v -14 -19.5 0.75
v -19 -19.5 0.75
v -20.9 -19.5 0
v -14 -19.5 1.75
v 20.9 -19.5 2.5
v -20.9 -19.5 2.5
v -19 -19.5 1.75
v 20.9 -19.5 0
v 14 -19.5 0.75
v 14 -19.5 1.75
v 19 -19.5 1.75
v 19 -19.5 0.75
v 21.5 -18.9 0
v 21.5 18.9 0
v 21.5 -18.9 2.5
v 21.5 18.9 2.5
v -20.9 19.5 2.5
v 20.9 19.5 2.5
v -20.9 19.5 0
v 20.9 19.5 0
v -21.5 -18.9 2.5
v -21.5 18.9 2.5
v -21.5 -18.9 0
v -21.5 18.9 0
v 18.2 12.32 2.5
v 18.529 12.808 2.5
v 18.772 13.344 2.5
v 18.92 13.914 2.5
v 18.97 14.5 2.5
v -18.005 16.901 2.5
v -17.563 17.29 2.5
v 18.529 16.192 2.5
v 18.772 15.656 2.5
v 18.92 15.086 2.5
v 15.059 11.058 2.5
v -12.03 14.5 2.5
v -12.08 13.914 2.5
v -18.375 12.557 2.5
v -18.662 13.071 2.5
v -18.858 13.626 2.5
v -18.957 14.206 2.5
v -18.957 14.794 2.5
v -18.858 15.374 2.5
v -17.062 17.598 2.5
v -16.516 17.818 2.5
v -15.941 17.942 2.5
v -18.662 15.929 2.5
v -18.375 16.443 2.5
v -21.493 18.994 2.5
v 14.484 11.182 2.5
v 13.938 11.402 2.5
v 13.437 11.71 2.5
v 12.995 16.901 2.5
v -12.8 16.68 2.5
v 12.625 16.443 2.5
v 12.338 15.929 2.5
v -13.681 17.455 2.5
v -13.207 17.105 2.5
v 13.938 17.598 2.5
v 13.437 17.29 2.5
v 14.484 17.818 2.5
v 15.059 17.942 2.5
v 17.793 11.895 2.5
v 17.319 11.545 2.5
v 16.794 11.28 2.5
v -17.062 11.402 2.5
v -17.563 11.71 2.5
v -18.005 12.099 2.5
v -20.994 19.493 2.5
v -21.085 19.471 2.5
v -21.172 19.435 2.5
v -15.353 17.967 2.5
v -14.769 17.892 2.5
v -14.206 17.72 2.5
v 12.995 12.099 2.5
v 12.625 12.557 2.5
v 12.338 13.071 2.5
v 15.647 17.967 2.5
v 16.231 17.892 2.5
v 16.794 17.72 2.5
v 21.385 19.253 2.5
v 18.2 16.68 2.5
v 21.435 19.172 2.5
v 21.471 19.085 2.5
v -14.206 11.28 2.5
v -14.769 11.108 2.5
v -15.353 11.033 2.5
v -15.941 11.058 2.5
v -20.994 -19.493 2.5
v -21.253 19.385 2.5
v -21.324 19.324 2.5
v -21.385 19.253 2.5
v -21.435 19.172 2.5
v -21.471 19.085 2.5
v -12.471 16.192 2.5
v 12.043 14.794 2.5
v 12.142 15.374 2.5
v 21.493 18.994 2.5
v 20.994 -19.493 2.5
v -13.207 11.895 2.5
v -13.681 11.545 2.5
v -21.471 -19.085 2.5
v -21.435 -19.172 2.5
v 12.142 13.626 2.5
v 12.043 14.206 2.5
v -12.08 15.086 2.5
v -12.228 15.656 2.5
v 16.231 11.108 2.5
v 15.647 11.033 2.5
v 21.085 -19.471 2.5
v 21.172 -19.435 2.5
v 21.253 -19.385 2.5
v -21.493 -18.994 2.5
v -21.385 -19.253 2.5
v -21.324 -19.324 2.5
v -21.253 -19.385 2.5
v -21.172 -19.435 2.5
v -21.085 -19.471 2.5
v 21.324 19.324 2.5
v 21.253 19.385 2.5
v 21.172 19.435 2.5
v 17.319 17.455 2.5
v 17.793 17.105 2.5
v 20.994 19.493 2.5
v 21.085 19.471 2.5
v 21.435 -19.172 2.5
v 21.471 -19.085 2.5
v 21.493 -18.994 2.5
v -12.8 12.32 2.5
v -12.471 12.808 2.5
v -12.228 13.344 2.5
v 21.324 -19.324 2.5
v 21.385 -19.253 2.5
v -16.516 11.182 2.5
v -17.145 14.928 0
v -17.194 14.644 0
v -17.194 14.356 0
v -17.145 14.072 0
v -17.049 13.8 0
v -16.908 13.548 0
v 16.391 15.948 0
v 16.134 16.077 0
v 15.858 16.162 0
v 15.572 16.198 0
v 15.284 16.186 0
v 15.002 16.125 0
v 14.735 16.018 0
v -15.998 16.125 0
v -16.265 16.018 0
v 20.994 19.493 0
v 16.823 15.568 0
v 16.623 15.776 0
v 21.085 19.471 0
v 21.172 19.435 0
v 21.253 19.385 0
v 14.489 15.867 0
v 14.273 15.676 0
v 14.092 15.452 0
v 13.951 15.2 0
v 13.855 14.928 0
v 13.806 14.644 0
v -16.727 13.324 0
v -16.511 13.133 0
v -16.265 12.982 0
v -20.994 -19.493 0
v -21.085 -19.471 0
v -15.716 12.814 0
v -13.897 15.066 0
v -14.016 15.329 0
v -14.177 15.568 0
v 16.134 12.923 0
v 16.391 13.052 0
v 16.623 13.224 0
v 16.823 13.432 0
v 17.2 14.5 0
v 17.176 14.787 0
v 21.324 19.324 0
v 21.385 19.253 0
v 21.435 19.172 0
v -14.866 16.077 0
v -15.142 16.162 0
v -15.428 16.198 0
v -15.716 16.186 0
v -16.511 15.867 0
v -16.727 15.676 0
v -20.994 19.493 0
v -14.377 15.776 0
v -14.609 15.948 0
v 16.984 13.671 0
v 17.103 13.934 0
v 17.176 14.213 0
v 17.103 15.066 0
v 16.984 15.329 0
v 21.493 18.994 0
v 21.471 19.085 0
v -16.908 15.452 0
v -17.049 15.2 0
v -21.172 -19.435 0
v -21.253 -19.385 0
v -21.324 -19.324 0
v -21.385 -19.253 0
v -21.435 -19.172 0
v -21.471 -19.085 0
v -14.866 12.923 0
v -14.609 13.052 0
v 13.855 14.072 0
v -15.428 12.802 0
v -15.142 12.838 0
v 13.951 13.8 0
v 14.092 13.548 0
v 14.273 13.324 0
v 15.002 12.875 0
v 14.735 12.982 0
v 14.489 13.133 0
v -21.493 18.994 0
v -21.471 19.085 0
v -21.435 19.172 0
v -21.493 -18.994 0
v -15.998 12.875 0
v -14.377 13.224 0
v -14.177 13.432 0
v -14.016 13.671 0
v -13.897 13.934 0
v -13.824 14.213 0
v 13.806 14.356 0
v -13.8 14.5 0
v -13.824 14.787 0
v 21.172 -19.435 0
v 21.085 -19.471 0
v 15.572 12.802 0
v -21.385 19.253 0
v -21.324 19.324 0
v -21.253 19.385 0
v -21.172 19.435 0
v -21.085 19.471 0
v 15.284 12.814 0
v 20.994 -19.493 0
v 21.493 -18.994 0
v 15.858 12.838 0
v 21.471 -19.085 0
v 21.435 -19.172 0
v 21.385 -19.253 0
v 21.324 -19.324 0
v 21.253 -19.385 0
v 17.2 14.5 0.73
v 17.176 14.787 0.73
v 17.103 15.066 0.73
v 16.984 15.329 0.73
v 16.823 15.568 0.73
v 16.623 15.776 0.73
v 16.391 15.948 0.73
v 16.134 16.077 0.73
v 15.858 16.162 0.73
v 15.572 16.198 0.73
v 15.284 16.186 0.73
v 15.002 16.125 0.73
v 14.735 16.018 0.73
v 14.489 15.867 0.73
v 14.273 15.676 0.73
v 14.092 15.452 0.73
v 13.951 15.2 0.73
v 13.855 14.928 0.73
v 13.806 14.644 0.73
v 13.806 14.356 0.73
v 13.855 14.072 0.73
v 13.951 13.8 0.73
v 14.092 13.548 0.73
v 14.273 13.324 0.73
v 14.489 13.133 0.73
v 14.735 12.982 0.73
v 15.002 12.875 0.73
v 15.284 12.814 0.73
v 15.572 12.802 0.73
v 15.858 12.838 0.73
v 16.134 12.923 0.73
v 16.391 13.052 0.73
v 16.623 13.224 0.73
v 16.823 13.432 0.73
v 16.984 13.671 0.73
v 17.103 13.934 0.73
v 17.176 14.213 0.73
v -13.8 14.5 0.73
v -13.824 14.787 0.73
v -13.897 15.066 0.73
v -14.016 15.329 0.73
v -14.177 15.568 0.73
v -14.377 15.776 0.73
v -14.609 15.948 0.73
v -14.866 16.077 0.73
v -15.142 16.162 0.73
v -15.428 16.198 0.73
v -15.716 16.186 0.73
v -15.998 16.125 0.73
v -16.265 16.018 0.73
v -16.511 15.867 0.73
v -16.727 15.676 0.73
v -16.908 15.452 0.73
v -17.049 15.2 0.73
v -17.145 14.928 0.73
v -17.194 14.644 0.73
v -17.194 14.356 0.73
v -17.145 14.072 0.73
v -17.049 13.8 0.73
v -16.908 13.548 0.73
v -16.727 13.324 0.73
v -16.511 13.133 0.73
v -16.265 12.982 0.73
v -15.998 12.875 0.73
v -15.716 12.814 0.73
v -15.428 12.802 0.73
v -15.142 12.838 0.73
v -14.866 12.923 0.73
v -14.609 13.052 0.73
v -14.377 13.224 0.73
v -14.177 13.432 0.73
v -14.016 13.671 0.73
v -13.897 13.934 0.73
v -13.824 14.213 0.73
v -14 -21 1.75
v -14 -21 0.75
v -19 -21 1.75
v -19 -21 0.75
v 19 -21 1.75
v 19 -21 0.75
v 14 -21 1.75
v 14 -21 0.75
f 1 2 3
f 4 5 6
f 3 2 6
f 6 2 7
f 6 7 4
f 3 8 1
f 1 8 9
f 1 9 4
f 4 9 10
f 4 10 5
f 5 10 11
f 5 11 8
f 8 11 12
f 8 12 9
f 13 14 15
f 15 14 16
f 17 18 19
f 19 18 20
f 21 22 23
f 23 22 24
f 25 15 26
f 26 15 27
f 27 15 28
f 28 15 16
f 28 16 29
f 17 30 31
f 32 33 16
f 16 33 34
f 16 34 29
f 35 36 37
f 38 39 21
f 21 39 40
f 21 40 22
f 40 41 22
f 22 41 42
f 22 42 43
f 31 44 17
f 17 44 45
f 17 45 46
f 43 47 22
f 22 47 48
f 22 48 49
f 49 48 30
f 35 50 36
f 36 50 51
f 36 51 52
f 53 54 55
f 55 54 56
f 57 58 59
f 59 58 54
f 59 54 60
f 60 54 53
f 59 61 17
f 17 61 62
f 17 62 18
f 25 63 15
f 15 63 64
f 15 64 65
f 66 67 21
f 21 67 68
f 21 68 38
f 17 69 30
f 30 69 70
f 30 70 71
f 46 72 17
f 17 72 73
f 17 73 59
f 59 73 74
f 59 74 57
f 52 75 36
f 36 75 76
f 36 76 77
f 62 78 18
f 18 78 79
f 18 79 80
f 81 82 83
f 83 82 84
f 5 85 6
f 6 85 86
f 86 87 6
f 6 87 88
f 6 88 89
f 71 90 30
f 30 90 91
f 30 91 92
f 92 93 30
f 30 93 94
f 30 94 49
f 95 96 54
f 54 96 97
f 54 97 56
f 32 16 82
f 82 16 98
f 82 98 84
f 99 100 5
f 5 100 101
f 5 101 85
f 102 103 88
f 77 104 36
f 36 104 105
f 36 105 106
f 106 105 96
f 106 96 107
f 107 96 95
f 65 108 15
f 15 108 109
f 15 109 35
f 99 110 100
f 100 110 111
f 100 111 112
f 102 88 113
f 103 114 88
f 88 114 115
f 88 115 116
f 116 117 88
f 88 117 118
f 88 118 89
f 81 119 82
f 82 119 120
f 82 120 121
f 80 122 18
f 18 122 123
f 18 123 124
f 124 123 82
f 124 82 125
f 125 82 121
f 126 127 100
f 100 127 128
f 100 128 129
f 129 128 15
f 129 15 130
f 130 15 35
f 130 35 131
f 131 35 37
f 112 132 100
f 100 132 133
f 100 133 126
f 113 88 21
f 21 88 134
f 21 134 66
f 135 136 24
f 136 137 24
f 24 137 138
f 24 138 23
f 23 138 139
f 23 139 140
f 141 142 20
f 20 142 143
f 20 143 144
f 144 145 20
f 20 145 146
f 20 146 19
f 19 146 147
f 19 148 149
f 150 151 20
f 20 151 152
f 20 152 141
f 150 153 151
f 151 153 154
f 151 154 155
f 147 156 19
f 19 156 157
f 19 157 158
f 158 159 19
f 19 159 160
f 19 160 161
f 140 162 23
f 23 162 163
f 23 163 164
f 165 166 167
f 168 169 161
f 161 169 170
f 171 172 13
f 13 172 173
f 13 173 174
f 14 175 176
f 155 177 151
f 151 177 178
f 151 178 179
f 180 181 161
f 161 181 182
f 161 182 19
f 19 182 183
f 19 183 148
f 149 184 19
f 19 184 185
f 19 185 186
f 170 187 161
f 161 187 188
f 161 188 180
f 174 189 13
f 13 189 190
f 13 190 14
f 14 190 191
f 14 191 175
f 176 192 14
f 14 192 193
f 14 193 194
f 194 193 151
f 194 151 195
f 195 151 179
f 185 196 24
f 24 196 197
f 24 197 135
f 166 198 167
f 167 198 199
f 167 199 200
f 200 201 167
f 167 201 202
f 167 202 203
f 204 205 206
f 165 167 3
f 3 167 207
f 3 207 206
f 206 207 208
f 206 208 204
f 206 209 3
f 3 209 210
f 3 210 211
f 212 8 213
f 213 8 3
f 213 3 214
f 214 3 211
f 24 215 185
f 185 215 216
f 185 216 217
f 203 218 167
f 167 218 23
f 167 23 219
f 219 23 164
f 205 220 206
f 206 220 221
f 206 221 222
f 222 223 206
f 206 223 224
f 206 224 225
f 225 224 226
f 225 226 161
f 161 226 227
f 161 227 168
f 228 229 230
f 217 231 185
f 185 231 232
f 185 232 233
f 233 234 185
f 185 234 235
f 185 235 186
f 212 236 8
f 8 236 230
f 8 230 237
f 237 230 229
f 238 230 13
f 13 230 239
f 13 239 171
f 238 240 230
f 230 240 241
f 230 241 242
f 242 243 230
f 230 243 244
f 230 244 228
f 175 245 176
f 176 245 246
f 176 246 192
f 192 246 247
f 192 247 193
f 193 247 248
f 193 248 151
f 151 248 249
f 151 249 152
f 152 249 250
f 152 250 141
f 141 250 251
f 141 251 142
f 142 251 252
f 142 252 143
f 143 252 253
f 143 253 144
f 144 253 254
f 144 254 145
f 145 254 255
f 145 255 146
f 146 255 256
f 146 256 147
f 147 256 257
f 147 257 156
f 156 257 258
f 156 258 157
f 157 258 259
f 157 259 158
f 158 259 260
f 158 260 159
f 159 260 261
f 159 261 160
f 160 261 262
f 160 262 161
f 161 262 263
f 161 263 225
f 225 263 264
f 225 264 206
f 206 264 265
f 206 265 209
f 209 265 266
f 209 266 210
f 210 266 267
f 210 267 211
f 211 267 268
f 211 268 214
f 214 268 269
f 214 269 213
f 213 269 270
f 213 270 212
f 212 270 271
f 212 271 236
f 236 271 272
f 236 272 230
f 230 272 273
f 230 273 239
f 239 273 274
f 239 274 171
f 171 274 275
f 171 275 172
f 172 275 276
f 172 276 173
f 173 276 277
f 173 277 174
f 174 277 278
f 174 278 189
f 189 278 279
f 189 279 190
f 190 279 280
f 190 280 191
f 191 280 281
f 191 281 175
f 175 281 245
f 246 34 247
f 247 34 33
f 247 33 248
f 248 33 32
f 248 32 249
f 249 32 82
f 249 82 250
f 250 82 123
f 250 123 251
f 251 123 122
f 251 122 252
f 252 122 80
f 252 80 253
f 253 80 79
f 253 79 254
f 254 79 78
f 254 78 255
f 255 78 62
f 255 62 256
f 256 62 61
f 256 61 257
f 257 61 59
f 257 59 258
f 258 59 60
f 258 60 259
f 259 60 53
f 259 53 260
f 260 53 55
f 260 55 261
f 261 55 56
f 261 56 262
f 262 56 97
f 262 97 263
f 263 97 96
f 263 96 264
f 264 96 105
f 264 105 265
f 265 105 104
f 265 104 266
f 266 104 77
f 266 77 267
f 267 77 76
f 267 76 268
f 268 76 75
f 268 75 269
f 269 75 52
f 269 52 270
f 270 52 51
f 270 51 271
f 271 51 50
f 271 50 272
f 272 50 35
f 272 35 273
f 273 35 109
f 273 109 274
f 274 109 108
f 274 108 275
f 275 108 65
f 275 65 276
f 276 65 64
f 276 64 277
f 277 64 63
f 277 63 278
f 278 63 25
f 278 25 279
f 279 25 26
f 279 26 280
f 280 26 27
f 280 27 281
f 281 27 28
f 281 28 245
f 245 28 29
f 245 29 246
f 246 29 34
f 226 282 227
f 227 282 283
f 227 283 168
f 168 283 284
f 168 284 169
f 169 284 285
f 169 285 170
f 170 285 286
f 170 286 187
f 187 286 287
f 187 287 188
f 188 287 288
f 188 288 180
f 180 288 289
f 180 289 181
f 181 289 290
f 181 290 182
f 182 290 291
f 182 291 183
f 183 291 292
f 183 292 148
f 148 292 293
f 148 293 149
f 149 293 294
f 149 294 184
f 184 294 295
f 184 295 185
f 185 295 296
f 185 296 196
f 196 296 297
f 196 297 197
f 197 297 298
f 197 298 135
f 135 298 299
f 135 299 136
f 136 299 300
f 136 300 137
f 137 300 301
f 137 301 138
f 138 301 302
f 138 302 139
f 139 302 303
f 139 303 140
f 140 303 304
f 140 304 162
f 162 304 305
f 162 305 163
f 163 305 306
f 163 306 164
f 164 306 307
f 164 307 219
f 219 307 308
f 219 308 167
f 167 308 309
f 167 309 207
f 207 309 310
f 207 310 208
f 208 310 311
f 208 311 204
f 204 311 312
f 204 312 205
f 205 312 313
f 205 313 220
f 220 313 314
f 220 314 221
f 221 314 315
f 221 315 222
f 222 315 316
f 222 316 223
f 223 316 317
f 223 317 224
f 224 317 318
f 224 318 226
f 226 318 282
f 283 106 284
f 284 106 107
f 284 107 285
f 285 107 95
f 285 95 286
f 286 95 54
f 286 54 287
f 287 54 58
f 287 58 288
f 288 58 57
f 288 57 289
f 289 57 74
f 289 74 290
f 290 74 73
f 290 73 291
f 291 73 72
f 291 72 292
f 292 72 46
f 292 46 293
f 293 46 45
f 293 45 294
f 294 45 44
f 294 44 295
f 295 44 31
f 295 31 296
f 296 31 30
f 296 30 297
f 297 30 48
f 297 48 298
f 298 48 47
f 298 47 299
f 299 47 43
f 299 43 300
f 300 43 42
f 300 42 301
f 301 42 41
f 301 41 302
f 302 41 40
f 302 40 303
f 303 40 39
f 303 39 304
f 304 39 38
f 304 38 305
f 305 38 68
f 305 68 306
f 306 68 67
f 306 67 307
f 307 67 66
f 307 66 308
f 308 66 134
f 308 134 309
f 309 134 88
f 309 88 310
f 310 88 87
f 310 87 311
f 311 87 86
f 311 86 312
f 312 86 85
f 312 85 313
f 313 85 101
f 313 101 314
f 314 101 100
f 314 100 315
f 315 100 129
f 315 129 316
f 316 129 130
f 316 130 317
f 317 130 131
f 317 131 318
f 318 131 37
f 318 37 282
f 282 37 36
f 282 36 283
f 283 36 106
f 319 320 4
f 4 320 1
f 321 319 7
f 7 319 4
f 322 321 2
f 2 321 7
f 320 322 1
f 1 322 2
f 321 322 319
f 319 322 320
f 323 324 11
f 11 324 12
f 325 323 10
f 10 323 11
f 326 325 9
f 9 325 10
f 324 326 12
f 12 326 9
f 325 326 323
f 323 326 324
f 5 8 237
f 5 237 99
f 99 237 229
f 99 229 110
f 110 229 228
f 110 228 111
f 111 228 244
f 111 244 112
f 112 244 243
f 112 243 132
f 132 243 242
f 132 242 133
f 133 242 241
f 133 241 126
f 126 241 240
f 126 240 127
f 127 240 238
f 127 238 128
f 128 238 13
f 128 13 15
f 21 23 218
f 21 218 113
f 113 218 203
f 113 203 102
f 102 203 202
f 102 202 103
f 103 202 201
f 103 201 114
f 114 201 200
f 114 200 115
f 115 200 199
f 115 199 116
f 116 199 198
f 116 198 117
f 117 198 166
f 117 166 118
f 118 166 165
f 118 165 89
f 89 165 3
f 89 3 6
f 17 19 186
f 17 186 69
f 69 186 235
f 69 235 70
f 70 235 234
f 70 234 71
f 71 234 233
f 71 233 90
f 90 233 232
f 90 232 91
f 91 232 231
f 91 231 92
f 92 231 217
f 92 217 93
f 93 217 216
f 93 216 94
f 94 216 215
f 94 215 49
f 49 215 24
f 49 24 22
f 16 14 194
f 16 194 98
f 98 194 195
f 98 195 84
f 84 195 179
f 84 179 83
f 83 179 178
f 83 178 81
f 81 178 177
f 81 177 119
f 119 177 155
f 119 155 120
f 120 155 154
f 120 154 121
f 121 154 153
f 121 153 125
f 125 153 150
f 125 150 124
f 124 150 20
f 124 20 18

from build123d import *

# Parameters (mm, degrees)
CROQUIS1_W                                           = 43
CROQUIS1_H                                           = 39
SALIENTE_EXTRUIR1_DEPTH                              = 2.5
AVELLANADO_PARA_TORNILLO_CON_CABEZA_AVEL_D           = 3.4
AVELLANADO_PARA_TORNILLO_CON_CABEZA_AVEL_DEPTH       = 12
AVELLANADO_PARA_TORNILLO_CON_CABEZA_AVEL_CSINK_D     = 6.94
AVELLANADO_PARA_TORNILLO_CON_CABEZA_AVEL_CSINK_ANGLE = 90
AVELLANADO_PARA_TORNILLO_CON_CABEZA_AVEL_TIP         = 1.021463052
CROQUIS6_W                                           = 5
CROQUIS6_H                                           = 1
SALIENTE_EXTRUIR2_DEPTH                              = 1.5
REDONDEO1_R                                          = 0.6


with BuildPart() as part:
    # Croquis1 → Saliente-Extruir1 (new body)
    with BuildSketch(Plane.XY):
        Rectangle(CROQUIS1_W, CROQUIS1_H)
    extrude(amount=SALIENTE_EXTRUIR1_DEPTH)

    # Avellanado para tornillo con cabeza avellanada de clavija hexagonal de M31
    with Locations(Plane(origin=(-15.5, 14.5, 2.5), x_dir=(1, 0, 0), z_dir=(0, 0, 1))):
        with Locations((0, 0), (31, 0)):
            CounterSinkHole(AVELLANADO_PARA_TORNILLO_CON_CABEZA_AVEL_D / 2, AVELLANADO_PARA_TORNILLO_CON_CABEZA_AVEL_CSINK_D / 2, depth=AVELLANADO_PARA_TORNILLO_CON_CABEZA_AVEL_DEPTH, counter_sink_angle=AVELLANADO_PARA_TORNILLO_CON_CABEZA_AVEL_CSINK_ANGLE)
            with Locations((0, 0, -(AVELLANADO_PARA_TORNILLO_CON_CABEZA_AVEL_DEPTH + AVELLANADO_PARA_TORNILLO_CON_CABEZA_AVEL_TIP / 2))):  # 118° drill point
                Cone(0, AVELLANADO_PARA_TORNILLO_CON_CABEZA_AVEL_D / 2, AVELLANADO_PARA_TORNILLO_CON_CABEZA_AVEL_TIP, mode=Mode.SUBTRACT)

    # Croquis6 → Saliente-Extruir2 (add)
    with BuildSketch(Plane.XZ.offset(19.5)):
        with Locations((-16.5, 1.25)):
            Rectangle(CROQUIS6_W, CROQUIS6_H)
        with Locations((16.5, 1.25)):
            Rectangle(CROQUIS6_W, CROQUIS6_H)
    extrude(amount=SALIENTE_EXTRUIR2_DEPTH)

    # Redondeo1
    redondeo1_edges = [part.edges().sort_by_distance(p)[0] for p in [
        (21.5, -19.5, 1.25),
        (-21.5, -19.5, 1.25),
        (-21.5, 19.5, 1.25),
        (21.5, 19.5, 1.25),
    ]]
    fillet(redondeo1_edges, radius=REDONDEO1_R)


solid = part.part
